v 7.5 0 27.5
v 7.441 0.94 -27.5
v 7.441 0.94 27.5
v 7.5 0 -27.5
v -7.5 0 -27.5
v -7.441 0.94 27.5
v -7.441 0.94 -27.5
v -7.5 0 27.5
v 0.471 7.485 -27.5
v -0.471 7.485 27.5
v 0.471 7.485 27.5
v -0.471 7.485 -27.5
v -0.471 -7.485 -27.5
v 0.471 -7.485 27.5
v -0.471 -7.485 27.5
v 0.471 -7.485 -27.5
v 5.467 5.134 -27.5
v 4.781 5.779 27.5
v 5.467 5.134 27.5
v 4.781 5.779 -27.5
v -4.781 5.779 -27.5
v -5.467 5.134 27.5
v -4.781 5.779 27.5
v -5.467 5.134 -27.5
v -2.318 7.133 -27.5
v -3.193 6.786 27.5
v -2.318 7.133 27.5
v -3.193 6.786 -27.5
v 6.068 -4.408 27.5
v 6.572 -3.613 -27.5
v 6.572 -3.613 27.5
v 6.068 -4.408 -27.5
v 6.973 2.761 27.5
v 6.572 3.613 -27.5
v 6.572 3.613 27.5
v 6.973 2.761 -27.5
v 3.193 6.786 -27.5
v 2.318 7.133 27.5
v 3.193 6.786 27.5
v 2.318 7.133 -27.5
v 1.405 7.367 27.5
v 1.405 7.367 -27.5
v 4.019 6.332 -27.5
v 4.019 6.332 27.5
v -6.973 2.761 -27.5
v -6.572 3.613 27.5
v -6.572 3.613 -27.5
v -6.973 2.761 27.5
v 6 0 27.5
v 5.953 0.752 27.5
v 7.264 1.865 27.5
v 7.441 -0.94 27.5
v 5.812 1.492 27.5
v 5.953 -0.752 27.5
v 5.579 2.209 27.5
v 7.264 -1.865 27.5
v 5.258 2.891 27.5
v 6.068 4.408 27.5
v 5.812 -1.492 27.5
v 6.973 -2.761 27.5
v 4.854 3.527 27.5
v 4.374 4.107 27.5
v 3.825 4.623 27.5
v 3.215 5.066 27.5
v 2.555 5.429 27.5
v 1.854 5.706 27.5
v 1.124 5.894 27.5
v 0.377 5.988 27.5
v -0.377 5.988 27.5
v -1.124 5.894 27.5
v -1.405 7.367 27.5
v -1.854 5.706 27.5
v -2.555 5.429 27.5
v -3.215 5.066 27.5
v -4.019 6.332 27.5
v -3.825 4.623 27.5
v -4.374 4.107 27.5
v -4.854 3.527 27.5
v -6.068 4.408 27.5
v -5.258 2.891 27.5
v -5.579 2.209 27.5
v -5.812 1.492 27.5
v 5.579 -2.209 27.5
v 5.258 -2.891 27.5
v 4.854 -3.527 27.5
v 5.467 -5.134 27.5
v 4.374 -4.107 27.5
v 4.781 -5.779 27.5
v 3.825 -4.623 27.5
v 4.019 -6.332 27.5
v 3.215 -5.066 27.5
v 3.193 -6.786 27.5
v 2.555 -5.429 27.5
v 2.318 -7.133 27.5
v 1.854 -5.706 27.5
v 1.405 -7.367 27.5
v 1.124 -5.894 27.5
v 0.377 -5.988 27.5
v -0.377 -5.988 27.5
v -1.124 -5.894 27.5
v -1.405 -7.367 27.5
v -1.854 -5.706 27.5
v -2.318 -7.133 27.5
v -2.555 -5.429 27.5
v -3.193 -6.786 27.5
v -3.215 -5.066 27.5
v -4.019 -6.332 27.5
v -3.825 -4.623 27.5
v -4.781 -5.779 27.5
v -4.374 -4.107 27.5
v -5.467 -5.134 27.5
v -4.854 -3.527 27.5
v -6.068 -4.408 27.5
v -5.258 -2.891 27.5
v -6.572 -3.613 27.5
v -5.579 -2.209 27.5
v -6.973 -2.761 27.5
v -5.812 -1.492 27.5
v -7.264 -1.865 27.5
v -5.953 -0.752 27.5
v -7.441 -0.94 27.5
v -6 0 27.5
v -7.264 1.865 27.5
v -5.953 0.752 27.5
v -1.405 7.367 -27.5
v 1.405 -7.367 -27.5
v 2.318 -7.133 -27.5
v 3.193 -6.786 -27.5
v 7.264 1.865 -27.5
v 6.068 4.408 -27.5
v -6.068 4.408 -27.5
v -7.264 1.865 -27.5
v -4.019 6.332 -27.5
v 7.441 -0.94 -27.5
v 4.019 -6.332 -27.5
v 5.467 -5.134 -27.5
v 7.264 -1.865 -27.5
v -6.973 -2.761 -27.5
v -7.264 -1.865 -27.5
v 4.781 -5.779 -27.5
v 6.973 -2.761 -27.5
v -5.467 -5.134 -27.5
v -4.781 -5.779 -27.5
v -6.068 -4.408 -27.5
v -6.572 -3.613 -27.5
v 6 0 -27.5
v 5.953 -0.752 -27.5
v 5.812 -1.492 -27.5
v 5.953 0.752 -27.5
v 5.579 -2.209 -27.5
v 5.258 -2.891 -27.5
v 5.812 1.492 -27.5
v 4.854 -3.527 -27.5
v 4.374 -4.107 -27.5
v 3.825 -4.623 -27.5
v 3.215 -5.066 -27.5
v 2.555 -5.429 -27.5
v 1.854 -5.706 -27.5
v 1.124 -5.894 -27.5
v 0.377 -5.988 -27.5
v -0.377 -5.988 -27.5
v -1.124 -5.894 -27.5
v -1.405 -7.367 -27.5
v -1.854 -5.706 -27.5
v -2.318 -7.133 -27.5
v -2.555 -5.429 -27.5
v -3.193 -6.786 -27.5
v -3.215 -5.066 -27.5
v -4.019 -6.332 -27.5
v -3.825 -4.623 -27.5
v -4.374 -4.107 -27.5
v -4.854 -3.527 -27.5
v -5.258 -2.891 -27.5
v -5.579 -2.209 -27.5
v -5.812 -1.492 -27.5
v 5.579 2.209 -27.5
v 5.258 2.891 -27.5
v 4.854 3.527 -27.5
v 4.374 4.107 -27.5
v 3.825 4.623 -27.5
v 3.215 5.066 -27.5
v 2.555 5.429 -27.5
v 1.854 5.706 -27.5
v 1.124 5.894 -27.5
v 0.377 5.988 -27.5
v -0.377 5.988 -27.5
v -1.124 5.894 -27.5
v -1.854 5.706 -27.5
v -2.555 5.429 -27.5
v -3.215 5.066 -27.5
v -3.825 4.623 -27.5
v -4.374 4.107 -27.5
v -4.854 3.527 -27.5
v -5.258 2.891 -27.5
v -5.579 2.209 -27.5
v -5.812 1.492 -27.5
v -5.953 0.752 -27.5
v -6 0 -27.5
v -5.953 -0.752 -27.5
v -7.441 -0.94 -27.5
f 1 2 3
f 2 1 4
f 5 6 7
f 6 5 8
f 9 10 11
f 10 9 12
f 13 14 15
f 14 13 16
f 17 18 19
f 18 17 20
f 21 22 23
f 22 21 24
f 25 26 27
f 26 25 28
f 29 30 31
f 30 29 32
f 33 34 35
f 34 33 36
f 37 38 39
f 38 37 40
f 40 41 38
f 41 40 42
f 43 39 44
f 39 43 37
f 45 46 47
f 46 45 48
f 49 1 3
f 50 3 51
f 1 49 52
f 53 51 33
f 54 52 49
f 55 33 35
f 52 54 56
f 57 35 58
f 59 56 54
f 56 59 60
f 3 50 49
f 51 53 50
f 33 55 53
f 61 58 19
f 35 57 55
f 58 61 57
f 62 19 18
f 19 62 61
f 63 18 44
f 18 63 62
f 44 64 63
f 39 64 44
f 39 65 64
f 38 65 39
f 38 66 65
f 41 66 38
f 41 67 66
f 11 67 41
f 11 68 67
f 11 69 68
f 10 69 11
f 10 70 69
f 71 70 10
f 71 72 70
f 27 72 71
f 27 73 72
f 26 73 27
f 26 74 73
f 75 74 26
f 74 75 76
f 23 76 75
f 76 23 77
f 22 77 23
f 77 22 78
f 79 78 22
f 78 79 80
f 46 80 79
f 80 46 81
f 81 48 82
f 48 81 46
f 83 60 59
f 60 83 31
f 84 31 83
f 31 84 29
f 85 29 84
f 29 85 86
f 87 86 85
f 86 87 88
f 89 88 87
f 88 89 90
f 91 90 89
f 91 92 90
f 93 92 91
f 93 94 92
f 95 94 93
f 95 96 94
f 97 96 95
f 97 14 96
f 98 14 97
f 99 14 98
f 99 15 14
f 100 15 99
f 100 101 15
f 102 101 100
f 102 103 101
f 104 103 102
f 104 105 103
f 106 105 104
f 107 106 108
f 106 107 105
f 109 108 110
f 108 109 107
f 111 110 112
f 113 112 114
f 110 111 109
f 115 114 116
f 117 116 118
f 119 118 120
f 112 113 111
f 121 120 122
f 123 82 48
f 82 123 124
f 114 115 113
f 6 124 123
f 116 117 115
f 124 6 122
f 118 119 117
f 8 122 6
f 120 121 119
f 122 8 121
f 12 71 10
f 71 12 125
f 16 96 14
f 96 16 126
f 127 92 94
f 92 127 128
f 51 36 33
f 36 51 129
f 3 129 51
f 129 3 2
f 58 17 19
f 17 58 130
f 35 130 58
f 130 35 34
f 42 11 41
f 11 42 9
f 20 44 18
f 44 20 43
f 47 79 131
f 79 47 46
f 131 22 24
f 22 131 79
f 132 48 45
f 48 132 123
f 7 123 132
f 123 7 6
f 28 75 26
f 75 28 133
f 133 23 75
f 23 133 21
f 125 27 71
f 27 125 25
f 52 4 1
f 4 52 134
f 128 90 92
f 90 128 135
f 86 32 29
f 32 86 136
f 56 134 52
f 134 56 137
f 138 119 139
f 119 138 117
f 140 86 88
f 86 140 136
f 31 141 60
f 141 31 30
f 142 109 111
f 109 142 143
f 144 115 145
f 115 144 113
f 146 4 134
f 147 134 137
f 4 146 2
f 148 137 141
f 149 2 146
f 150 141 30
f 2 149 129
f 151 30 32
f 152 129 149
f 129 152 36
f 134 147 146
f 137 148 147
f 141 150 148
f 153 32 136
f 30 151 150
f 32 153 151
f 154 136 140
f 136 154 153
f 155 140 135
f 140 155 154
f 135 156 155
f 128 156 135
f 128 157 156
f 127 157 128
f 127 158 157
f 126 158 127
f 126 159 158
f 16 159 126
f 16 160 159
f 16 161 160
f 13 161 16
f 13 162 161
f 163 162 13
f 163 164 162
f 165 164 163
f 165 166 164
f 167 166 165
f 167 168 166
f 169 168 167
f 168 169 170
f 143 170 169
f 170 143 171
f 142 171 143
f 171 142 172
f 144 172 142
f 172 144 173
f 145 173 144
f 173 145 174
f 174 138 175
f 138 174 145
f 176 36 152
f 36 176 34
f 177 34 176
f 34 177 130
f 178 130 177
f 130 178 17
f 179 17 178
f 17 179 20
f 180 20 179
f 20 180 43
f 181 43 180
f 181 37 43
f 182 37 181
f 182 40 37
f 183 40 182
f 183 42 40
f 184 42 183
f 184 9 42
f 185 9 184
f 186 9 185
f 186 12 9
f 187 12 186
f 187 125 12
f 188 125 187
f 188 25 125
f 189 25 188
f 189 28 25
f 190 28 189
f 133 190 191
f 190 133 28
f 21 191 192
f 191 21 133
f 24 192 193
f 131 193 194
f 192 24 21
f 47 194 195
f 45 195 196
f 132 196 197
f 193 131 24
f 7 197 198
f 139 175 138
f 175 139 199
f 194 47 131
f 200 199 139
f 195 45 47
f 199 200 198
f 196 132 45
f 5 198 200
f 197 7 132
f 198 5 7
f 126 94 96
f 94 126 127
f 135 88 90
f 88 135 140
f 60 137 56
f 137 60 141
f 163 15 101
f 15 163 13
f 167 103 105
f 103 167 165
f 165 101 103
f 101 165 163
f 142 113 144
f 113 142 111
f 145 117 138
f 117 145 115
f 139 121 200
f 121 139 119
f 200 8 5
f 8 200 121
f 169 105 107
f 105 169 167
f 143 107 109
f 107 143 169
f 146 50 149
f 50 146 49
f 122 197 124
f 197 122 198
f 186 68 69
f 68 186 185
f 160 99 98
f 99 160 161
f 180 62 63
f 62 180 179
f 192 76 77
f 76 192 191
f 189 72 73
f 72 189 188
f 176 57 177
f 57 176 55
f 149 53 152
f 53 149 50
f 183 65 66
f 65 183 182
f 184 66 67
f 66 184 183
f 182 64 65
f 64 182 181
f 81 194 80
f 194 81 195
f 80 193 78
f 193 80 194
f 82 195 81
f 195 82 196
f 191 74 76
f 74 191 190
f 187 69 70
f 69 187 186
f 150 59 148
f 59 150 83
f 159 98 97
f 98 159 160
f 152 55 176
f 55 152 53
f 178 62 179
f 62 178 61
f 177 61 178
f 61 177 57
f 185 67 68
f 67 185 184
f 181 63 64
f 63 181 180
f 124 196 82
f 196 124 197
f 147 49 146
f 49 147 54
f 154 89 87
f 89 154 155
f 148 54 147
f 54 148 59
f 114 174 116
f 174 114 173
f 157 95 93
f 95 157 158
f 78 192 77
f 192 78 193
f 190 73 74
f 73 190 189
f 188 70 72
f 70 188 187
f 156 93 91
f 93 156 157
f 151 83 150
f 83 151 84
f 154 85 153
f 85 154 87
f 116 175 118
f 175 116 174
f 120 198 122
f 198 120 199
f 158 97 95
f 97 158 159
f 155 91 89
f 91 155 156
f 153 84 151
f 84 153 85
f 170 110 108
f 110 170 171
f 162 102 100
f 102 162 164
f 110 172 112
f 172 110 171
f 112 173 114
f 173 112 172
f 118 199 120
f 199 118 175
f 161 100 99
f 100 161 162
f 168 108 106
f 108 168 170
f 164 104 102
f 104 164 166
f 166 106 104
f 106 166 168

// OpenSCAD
$fn = 50;


difference() {
	union() {
		translate(v = [0, 0, -27.5000000000]) {
			cylinder(h = 55, r = 7.5000000000);
		}
	}
	union() {
		translate(v = [0, 0, -100.0000000000]) {
			cylinder(h = 200, r = 6);
		}
	}
}
